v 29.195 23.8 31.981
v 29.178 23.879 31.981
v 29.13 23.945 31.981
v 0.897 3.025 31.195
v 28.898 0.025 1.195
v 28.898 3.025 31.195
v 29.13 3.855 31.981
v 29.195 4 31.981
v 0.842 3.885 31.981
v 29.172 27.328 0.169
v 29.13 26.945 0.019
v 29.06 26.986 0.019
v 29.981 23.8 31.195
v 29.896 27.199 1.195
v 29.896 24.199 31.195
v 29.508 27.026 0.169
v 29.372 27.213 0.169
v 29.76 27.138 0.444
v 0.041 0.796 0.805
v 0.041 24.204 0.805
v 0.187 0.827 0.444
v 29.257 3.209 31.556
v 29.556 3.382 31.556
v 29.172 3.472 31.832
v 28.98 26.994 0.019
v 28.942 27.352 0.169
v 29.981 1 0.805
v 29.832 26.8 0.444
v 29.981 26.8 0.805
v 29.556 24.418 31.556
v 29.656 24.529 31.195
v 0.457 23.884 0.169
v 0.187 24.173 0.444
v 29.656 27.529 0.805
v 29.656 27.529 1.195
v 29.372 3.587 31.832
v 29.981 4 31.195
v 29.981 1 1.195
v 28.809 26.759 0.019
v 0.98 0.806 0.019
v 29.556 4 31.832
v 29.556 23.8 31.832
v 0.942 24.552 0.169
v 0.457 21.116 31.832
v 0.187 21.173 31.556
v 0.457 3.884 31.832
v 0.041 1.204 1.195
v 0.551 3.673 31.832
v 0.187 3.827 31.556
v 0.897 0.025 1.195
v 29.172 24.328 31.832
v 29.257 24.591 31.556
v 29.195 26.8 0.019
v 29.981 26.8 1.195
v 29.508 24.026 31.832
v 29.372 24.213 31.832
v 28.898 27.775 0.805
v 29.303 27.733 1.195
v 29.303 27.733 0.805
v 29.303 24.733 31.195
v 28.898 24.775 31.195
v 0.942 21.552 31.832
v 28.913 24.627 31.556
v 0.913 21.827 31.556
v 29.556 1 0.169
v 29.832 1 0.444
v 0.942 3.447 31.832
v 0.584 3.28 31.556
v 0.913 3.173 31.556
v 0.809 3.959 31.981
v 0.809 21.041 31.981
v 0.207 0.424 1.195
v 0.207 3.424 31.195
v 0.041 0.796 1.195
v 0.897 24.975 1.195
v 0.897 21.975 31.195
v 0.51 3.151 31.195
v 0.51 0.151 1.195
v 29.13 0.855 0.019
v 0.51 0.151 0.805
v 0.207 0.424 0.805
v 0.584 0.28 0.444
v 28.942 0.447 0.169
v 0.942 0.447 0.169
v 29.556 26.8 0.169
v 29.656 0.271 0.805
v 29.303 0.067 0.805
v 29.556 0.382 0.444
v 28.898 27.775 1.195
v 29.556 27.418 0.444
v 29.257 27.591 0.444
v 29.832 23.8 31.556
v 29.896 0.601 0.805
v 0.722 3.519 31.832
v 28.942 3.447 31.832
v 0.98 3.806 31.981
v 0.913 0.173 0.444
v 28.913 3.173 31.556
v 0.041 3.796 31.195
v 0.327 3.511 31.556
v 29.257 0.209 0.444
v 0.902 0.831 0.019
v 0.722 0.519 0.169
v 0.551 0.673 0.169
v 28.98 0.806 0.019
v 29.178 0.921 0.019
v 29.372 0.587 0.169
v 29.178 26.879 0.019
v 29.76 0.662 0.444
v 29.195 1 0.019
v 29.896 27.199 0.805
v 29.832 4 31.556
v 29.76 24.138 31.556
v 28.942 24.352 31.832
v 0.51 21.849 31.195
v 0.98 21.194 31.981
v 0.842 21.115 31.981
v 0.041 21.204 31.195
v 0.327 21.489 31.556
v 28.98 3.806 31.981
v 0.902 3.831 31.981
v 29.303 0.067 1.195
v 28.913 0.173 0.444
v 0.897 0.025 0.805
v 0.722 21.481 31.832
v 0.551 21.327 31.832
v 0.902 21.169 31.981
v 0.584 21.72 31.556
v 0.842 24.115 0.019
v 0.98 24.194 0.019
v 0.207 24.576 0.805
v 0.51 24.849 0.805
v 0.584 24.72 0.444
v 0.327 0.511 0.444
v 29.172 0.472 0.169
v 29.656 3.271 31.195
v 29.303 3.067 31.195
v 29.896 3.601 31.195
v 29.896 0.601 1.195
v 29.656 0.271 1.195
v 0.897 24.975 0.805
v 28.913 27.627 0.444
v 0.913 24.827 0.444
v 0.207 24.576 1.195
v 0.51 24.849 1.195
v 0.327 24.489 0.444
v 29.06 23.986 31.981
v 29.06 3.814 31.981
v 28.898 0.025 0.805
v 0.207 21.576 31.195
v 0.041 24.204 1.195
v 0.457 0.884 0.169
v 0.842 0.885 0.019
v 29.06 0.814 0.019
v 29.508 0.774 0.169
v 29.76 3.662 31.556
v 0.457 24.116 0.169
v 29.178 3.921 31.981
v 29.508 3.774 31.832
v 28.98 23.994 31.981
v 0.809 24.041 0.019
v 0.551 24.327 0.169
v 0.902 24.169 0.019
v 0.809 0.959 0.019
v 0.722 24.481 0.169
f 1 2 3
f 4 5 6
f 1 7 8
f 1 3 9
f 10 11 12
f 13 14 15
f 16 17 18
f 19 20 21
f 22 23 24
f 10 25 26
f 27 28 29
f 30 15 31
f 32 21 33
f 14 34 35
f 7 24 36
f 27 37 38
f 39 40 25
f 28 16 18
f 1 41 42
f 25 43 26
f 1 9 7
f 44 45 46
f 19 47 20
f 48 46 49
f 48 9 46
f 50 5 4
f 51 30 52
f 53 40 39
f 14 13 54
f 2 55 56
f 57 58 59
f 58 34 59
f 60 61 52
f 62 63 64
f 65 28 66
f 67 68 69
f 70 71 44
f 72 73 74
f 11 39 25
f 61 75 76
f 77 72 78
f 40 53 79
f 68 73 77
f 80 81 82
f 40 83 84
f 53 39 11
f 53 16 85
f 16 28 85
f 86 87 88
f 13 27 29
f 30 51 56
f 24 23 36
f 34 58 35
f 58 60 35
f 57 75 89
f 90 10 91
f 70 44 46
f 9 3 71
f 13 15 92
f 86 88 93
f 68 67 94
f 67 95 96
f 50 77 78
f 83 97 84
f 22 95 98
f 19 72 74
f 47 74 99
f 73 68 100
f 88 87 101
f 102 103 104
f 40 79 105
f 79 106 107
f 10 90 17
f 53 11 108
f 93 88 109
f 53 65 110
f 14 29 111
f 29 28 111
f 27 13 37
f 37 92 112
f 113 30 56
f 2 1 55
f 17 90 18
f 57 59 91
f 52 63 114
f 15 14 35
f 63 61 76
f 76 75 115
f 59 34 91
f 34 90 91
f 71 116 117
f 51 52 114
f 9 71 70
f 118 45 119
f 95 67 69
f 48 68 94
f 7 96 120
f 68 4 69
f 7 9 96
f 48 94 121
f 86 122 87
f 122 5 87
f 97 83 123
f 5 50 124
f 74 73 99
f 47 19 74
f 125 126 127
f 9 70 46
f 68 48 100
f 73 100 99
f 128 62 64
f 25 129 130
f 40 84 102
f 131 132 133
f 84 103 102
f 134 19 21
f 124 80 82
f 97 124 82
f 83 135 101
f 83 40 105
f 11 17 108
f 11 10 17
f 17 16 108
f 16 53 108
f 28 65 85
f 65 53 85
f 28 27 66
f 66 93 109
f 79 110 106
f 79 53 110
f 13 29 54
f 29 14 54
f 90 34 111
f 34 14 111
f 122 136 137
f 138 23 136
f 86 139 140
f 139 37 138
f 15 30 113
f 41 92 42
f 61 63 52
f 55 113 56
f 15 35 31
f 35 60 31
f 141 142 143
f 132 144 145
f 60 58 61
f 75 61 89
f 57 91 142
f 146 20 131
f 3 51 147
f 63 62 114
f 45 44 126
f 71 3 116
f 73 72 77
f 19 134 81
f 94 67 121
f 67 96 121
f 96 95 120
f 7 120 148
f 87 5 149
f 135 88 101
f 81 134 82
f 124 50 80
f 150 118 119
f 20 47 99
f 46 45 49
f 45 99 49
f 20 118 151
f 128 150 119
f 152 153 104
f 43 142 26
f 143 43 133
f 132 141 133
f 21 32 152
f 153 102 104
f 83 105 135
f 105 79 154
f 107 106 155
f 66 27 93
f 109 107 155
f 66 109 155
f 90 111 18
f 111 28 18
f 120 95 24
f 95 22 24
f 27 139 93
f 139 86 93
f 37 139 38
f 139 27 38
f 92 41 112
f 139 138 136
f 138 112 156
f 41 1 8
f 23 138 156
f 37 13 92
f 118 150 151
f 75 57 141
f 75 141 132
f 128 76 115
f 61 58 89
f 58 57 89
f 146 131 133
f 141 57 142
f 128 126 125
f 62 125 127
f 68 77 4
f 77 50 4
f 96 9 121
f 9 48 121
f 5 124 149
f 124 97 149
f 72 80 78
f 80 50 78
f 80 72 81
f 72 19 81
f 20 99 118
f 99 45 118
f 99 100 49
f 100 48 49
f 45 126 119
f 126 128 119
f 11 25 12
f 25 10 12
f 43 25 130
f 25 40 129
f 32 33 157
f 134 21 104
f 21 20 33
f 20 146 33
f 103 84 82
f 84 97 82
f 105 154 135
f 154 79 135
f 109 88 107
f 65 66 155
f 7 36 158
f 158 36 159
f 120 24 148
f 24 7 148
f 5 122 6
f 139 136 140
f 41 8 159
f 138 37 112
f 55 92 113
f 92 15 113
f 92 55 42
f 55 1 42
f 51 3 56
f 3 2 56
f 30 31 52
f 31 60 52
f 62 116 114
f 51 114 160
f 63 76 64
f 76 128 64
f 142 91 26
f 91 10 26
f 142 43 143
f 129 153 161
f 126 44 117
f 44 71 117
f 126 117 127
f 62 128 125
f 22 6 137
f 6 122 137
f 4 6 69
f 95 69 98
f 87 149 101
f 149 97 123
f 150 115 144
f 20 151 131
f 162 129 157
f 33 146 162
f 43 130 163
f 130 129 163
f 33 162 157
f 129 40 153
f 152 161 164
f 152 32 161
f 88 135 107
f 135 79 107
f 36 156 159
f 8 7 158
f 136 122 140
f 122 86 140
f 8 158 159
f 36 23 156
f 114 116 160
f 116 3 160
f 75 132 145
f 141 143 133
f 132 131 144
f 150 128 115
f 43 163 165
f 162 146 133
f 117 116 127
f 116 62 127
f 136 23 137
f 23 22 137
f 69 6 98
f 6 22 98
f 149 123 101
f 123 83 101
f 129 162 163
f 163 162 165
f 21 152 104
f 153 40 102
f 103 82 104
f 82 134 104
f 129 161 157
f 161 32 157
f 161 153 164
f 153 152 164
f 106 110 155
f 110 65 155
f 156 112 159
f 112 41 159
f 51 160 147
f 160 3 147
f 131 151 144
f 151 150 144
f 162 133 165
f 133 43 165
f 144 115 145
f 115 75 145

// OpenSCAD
// -*- mode: SCAD ; c-file-style: "ellemtel" ; coding: utf-8 -*-
//
// Keil, um gekippte Fenster offen zu halten.
//
// © 2017 Roland Sieker <ospalh@gmail.com>
// Licence: CC-BY-SA 4.0

$fn = 15;

r = 1;
kf = 0.1;
x = 30 - 2*r;
y1 = 25 - 2*r;
y2 = (25 + kf * x) - 2*r;
y3 = 19 - 2*r;
y4 = (19 + kf*x) - 2*r;
z = 30;
dy = (y1-y3)/2;

hull()
{
   translate([r, r, r])
   {
      // Unten
      sphere(r=r);
      translate([x, 0, 0])
      {
         sphere(r=r);
      }
      translate([0, y1, 0])
      {
         sphere(r=r);
      }
      translate([x, y2, 0])
      {
         sphere(r=r);
      }

      translate([0,dy,z])
      {
         // Oben
         sphere(r=r);
         translate([x, 0, 0])
         {
            sphere(r=r);
         }
         translate([0, y3, 0])
         {
            sphere(r=r);
         }
         translate([x, y4, 0])
         {
            sphere(r=r);
         }
      }
   }
}
